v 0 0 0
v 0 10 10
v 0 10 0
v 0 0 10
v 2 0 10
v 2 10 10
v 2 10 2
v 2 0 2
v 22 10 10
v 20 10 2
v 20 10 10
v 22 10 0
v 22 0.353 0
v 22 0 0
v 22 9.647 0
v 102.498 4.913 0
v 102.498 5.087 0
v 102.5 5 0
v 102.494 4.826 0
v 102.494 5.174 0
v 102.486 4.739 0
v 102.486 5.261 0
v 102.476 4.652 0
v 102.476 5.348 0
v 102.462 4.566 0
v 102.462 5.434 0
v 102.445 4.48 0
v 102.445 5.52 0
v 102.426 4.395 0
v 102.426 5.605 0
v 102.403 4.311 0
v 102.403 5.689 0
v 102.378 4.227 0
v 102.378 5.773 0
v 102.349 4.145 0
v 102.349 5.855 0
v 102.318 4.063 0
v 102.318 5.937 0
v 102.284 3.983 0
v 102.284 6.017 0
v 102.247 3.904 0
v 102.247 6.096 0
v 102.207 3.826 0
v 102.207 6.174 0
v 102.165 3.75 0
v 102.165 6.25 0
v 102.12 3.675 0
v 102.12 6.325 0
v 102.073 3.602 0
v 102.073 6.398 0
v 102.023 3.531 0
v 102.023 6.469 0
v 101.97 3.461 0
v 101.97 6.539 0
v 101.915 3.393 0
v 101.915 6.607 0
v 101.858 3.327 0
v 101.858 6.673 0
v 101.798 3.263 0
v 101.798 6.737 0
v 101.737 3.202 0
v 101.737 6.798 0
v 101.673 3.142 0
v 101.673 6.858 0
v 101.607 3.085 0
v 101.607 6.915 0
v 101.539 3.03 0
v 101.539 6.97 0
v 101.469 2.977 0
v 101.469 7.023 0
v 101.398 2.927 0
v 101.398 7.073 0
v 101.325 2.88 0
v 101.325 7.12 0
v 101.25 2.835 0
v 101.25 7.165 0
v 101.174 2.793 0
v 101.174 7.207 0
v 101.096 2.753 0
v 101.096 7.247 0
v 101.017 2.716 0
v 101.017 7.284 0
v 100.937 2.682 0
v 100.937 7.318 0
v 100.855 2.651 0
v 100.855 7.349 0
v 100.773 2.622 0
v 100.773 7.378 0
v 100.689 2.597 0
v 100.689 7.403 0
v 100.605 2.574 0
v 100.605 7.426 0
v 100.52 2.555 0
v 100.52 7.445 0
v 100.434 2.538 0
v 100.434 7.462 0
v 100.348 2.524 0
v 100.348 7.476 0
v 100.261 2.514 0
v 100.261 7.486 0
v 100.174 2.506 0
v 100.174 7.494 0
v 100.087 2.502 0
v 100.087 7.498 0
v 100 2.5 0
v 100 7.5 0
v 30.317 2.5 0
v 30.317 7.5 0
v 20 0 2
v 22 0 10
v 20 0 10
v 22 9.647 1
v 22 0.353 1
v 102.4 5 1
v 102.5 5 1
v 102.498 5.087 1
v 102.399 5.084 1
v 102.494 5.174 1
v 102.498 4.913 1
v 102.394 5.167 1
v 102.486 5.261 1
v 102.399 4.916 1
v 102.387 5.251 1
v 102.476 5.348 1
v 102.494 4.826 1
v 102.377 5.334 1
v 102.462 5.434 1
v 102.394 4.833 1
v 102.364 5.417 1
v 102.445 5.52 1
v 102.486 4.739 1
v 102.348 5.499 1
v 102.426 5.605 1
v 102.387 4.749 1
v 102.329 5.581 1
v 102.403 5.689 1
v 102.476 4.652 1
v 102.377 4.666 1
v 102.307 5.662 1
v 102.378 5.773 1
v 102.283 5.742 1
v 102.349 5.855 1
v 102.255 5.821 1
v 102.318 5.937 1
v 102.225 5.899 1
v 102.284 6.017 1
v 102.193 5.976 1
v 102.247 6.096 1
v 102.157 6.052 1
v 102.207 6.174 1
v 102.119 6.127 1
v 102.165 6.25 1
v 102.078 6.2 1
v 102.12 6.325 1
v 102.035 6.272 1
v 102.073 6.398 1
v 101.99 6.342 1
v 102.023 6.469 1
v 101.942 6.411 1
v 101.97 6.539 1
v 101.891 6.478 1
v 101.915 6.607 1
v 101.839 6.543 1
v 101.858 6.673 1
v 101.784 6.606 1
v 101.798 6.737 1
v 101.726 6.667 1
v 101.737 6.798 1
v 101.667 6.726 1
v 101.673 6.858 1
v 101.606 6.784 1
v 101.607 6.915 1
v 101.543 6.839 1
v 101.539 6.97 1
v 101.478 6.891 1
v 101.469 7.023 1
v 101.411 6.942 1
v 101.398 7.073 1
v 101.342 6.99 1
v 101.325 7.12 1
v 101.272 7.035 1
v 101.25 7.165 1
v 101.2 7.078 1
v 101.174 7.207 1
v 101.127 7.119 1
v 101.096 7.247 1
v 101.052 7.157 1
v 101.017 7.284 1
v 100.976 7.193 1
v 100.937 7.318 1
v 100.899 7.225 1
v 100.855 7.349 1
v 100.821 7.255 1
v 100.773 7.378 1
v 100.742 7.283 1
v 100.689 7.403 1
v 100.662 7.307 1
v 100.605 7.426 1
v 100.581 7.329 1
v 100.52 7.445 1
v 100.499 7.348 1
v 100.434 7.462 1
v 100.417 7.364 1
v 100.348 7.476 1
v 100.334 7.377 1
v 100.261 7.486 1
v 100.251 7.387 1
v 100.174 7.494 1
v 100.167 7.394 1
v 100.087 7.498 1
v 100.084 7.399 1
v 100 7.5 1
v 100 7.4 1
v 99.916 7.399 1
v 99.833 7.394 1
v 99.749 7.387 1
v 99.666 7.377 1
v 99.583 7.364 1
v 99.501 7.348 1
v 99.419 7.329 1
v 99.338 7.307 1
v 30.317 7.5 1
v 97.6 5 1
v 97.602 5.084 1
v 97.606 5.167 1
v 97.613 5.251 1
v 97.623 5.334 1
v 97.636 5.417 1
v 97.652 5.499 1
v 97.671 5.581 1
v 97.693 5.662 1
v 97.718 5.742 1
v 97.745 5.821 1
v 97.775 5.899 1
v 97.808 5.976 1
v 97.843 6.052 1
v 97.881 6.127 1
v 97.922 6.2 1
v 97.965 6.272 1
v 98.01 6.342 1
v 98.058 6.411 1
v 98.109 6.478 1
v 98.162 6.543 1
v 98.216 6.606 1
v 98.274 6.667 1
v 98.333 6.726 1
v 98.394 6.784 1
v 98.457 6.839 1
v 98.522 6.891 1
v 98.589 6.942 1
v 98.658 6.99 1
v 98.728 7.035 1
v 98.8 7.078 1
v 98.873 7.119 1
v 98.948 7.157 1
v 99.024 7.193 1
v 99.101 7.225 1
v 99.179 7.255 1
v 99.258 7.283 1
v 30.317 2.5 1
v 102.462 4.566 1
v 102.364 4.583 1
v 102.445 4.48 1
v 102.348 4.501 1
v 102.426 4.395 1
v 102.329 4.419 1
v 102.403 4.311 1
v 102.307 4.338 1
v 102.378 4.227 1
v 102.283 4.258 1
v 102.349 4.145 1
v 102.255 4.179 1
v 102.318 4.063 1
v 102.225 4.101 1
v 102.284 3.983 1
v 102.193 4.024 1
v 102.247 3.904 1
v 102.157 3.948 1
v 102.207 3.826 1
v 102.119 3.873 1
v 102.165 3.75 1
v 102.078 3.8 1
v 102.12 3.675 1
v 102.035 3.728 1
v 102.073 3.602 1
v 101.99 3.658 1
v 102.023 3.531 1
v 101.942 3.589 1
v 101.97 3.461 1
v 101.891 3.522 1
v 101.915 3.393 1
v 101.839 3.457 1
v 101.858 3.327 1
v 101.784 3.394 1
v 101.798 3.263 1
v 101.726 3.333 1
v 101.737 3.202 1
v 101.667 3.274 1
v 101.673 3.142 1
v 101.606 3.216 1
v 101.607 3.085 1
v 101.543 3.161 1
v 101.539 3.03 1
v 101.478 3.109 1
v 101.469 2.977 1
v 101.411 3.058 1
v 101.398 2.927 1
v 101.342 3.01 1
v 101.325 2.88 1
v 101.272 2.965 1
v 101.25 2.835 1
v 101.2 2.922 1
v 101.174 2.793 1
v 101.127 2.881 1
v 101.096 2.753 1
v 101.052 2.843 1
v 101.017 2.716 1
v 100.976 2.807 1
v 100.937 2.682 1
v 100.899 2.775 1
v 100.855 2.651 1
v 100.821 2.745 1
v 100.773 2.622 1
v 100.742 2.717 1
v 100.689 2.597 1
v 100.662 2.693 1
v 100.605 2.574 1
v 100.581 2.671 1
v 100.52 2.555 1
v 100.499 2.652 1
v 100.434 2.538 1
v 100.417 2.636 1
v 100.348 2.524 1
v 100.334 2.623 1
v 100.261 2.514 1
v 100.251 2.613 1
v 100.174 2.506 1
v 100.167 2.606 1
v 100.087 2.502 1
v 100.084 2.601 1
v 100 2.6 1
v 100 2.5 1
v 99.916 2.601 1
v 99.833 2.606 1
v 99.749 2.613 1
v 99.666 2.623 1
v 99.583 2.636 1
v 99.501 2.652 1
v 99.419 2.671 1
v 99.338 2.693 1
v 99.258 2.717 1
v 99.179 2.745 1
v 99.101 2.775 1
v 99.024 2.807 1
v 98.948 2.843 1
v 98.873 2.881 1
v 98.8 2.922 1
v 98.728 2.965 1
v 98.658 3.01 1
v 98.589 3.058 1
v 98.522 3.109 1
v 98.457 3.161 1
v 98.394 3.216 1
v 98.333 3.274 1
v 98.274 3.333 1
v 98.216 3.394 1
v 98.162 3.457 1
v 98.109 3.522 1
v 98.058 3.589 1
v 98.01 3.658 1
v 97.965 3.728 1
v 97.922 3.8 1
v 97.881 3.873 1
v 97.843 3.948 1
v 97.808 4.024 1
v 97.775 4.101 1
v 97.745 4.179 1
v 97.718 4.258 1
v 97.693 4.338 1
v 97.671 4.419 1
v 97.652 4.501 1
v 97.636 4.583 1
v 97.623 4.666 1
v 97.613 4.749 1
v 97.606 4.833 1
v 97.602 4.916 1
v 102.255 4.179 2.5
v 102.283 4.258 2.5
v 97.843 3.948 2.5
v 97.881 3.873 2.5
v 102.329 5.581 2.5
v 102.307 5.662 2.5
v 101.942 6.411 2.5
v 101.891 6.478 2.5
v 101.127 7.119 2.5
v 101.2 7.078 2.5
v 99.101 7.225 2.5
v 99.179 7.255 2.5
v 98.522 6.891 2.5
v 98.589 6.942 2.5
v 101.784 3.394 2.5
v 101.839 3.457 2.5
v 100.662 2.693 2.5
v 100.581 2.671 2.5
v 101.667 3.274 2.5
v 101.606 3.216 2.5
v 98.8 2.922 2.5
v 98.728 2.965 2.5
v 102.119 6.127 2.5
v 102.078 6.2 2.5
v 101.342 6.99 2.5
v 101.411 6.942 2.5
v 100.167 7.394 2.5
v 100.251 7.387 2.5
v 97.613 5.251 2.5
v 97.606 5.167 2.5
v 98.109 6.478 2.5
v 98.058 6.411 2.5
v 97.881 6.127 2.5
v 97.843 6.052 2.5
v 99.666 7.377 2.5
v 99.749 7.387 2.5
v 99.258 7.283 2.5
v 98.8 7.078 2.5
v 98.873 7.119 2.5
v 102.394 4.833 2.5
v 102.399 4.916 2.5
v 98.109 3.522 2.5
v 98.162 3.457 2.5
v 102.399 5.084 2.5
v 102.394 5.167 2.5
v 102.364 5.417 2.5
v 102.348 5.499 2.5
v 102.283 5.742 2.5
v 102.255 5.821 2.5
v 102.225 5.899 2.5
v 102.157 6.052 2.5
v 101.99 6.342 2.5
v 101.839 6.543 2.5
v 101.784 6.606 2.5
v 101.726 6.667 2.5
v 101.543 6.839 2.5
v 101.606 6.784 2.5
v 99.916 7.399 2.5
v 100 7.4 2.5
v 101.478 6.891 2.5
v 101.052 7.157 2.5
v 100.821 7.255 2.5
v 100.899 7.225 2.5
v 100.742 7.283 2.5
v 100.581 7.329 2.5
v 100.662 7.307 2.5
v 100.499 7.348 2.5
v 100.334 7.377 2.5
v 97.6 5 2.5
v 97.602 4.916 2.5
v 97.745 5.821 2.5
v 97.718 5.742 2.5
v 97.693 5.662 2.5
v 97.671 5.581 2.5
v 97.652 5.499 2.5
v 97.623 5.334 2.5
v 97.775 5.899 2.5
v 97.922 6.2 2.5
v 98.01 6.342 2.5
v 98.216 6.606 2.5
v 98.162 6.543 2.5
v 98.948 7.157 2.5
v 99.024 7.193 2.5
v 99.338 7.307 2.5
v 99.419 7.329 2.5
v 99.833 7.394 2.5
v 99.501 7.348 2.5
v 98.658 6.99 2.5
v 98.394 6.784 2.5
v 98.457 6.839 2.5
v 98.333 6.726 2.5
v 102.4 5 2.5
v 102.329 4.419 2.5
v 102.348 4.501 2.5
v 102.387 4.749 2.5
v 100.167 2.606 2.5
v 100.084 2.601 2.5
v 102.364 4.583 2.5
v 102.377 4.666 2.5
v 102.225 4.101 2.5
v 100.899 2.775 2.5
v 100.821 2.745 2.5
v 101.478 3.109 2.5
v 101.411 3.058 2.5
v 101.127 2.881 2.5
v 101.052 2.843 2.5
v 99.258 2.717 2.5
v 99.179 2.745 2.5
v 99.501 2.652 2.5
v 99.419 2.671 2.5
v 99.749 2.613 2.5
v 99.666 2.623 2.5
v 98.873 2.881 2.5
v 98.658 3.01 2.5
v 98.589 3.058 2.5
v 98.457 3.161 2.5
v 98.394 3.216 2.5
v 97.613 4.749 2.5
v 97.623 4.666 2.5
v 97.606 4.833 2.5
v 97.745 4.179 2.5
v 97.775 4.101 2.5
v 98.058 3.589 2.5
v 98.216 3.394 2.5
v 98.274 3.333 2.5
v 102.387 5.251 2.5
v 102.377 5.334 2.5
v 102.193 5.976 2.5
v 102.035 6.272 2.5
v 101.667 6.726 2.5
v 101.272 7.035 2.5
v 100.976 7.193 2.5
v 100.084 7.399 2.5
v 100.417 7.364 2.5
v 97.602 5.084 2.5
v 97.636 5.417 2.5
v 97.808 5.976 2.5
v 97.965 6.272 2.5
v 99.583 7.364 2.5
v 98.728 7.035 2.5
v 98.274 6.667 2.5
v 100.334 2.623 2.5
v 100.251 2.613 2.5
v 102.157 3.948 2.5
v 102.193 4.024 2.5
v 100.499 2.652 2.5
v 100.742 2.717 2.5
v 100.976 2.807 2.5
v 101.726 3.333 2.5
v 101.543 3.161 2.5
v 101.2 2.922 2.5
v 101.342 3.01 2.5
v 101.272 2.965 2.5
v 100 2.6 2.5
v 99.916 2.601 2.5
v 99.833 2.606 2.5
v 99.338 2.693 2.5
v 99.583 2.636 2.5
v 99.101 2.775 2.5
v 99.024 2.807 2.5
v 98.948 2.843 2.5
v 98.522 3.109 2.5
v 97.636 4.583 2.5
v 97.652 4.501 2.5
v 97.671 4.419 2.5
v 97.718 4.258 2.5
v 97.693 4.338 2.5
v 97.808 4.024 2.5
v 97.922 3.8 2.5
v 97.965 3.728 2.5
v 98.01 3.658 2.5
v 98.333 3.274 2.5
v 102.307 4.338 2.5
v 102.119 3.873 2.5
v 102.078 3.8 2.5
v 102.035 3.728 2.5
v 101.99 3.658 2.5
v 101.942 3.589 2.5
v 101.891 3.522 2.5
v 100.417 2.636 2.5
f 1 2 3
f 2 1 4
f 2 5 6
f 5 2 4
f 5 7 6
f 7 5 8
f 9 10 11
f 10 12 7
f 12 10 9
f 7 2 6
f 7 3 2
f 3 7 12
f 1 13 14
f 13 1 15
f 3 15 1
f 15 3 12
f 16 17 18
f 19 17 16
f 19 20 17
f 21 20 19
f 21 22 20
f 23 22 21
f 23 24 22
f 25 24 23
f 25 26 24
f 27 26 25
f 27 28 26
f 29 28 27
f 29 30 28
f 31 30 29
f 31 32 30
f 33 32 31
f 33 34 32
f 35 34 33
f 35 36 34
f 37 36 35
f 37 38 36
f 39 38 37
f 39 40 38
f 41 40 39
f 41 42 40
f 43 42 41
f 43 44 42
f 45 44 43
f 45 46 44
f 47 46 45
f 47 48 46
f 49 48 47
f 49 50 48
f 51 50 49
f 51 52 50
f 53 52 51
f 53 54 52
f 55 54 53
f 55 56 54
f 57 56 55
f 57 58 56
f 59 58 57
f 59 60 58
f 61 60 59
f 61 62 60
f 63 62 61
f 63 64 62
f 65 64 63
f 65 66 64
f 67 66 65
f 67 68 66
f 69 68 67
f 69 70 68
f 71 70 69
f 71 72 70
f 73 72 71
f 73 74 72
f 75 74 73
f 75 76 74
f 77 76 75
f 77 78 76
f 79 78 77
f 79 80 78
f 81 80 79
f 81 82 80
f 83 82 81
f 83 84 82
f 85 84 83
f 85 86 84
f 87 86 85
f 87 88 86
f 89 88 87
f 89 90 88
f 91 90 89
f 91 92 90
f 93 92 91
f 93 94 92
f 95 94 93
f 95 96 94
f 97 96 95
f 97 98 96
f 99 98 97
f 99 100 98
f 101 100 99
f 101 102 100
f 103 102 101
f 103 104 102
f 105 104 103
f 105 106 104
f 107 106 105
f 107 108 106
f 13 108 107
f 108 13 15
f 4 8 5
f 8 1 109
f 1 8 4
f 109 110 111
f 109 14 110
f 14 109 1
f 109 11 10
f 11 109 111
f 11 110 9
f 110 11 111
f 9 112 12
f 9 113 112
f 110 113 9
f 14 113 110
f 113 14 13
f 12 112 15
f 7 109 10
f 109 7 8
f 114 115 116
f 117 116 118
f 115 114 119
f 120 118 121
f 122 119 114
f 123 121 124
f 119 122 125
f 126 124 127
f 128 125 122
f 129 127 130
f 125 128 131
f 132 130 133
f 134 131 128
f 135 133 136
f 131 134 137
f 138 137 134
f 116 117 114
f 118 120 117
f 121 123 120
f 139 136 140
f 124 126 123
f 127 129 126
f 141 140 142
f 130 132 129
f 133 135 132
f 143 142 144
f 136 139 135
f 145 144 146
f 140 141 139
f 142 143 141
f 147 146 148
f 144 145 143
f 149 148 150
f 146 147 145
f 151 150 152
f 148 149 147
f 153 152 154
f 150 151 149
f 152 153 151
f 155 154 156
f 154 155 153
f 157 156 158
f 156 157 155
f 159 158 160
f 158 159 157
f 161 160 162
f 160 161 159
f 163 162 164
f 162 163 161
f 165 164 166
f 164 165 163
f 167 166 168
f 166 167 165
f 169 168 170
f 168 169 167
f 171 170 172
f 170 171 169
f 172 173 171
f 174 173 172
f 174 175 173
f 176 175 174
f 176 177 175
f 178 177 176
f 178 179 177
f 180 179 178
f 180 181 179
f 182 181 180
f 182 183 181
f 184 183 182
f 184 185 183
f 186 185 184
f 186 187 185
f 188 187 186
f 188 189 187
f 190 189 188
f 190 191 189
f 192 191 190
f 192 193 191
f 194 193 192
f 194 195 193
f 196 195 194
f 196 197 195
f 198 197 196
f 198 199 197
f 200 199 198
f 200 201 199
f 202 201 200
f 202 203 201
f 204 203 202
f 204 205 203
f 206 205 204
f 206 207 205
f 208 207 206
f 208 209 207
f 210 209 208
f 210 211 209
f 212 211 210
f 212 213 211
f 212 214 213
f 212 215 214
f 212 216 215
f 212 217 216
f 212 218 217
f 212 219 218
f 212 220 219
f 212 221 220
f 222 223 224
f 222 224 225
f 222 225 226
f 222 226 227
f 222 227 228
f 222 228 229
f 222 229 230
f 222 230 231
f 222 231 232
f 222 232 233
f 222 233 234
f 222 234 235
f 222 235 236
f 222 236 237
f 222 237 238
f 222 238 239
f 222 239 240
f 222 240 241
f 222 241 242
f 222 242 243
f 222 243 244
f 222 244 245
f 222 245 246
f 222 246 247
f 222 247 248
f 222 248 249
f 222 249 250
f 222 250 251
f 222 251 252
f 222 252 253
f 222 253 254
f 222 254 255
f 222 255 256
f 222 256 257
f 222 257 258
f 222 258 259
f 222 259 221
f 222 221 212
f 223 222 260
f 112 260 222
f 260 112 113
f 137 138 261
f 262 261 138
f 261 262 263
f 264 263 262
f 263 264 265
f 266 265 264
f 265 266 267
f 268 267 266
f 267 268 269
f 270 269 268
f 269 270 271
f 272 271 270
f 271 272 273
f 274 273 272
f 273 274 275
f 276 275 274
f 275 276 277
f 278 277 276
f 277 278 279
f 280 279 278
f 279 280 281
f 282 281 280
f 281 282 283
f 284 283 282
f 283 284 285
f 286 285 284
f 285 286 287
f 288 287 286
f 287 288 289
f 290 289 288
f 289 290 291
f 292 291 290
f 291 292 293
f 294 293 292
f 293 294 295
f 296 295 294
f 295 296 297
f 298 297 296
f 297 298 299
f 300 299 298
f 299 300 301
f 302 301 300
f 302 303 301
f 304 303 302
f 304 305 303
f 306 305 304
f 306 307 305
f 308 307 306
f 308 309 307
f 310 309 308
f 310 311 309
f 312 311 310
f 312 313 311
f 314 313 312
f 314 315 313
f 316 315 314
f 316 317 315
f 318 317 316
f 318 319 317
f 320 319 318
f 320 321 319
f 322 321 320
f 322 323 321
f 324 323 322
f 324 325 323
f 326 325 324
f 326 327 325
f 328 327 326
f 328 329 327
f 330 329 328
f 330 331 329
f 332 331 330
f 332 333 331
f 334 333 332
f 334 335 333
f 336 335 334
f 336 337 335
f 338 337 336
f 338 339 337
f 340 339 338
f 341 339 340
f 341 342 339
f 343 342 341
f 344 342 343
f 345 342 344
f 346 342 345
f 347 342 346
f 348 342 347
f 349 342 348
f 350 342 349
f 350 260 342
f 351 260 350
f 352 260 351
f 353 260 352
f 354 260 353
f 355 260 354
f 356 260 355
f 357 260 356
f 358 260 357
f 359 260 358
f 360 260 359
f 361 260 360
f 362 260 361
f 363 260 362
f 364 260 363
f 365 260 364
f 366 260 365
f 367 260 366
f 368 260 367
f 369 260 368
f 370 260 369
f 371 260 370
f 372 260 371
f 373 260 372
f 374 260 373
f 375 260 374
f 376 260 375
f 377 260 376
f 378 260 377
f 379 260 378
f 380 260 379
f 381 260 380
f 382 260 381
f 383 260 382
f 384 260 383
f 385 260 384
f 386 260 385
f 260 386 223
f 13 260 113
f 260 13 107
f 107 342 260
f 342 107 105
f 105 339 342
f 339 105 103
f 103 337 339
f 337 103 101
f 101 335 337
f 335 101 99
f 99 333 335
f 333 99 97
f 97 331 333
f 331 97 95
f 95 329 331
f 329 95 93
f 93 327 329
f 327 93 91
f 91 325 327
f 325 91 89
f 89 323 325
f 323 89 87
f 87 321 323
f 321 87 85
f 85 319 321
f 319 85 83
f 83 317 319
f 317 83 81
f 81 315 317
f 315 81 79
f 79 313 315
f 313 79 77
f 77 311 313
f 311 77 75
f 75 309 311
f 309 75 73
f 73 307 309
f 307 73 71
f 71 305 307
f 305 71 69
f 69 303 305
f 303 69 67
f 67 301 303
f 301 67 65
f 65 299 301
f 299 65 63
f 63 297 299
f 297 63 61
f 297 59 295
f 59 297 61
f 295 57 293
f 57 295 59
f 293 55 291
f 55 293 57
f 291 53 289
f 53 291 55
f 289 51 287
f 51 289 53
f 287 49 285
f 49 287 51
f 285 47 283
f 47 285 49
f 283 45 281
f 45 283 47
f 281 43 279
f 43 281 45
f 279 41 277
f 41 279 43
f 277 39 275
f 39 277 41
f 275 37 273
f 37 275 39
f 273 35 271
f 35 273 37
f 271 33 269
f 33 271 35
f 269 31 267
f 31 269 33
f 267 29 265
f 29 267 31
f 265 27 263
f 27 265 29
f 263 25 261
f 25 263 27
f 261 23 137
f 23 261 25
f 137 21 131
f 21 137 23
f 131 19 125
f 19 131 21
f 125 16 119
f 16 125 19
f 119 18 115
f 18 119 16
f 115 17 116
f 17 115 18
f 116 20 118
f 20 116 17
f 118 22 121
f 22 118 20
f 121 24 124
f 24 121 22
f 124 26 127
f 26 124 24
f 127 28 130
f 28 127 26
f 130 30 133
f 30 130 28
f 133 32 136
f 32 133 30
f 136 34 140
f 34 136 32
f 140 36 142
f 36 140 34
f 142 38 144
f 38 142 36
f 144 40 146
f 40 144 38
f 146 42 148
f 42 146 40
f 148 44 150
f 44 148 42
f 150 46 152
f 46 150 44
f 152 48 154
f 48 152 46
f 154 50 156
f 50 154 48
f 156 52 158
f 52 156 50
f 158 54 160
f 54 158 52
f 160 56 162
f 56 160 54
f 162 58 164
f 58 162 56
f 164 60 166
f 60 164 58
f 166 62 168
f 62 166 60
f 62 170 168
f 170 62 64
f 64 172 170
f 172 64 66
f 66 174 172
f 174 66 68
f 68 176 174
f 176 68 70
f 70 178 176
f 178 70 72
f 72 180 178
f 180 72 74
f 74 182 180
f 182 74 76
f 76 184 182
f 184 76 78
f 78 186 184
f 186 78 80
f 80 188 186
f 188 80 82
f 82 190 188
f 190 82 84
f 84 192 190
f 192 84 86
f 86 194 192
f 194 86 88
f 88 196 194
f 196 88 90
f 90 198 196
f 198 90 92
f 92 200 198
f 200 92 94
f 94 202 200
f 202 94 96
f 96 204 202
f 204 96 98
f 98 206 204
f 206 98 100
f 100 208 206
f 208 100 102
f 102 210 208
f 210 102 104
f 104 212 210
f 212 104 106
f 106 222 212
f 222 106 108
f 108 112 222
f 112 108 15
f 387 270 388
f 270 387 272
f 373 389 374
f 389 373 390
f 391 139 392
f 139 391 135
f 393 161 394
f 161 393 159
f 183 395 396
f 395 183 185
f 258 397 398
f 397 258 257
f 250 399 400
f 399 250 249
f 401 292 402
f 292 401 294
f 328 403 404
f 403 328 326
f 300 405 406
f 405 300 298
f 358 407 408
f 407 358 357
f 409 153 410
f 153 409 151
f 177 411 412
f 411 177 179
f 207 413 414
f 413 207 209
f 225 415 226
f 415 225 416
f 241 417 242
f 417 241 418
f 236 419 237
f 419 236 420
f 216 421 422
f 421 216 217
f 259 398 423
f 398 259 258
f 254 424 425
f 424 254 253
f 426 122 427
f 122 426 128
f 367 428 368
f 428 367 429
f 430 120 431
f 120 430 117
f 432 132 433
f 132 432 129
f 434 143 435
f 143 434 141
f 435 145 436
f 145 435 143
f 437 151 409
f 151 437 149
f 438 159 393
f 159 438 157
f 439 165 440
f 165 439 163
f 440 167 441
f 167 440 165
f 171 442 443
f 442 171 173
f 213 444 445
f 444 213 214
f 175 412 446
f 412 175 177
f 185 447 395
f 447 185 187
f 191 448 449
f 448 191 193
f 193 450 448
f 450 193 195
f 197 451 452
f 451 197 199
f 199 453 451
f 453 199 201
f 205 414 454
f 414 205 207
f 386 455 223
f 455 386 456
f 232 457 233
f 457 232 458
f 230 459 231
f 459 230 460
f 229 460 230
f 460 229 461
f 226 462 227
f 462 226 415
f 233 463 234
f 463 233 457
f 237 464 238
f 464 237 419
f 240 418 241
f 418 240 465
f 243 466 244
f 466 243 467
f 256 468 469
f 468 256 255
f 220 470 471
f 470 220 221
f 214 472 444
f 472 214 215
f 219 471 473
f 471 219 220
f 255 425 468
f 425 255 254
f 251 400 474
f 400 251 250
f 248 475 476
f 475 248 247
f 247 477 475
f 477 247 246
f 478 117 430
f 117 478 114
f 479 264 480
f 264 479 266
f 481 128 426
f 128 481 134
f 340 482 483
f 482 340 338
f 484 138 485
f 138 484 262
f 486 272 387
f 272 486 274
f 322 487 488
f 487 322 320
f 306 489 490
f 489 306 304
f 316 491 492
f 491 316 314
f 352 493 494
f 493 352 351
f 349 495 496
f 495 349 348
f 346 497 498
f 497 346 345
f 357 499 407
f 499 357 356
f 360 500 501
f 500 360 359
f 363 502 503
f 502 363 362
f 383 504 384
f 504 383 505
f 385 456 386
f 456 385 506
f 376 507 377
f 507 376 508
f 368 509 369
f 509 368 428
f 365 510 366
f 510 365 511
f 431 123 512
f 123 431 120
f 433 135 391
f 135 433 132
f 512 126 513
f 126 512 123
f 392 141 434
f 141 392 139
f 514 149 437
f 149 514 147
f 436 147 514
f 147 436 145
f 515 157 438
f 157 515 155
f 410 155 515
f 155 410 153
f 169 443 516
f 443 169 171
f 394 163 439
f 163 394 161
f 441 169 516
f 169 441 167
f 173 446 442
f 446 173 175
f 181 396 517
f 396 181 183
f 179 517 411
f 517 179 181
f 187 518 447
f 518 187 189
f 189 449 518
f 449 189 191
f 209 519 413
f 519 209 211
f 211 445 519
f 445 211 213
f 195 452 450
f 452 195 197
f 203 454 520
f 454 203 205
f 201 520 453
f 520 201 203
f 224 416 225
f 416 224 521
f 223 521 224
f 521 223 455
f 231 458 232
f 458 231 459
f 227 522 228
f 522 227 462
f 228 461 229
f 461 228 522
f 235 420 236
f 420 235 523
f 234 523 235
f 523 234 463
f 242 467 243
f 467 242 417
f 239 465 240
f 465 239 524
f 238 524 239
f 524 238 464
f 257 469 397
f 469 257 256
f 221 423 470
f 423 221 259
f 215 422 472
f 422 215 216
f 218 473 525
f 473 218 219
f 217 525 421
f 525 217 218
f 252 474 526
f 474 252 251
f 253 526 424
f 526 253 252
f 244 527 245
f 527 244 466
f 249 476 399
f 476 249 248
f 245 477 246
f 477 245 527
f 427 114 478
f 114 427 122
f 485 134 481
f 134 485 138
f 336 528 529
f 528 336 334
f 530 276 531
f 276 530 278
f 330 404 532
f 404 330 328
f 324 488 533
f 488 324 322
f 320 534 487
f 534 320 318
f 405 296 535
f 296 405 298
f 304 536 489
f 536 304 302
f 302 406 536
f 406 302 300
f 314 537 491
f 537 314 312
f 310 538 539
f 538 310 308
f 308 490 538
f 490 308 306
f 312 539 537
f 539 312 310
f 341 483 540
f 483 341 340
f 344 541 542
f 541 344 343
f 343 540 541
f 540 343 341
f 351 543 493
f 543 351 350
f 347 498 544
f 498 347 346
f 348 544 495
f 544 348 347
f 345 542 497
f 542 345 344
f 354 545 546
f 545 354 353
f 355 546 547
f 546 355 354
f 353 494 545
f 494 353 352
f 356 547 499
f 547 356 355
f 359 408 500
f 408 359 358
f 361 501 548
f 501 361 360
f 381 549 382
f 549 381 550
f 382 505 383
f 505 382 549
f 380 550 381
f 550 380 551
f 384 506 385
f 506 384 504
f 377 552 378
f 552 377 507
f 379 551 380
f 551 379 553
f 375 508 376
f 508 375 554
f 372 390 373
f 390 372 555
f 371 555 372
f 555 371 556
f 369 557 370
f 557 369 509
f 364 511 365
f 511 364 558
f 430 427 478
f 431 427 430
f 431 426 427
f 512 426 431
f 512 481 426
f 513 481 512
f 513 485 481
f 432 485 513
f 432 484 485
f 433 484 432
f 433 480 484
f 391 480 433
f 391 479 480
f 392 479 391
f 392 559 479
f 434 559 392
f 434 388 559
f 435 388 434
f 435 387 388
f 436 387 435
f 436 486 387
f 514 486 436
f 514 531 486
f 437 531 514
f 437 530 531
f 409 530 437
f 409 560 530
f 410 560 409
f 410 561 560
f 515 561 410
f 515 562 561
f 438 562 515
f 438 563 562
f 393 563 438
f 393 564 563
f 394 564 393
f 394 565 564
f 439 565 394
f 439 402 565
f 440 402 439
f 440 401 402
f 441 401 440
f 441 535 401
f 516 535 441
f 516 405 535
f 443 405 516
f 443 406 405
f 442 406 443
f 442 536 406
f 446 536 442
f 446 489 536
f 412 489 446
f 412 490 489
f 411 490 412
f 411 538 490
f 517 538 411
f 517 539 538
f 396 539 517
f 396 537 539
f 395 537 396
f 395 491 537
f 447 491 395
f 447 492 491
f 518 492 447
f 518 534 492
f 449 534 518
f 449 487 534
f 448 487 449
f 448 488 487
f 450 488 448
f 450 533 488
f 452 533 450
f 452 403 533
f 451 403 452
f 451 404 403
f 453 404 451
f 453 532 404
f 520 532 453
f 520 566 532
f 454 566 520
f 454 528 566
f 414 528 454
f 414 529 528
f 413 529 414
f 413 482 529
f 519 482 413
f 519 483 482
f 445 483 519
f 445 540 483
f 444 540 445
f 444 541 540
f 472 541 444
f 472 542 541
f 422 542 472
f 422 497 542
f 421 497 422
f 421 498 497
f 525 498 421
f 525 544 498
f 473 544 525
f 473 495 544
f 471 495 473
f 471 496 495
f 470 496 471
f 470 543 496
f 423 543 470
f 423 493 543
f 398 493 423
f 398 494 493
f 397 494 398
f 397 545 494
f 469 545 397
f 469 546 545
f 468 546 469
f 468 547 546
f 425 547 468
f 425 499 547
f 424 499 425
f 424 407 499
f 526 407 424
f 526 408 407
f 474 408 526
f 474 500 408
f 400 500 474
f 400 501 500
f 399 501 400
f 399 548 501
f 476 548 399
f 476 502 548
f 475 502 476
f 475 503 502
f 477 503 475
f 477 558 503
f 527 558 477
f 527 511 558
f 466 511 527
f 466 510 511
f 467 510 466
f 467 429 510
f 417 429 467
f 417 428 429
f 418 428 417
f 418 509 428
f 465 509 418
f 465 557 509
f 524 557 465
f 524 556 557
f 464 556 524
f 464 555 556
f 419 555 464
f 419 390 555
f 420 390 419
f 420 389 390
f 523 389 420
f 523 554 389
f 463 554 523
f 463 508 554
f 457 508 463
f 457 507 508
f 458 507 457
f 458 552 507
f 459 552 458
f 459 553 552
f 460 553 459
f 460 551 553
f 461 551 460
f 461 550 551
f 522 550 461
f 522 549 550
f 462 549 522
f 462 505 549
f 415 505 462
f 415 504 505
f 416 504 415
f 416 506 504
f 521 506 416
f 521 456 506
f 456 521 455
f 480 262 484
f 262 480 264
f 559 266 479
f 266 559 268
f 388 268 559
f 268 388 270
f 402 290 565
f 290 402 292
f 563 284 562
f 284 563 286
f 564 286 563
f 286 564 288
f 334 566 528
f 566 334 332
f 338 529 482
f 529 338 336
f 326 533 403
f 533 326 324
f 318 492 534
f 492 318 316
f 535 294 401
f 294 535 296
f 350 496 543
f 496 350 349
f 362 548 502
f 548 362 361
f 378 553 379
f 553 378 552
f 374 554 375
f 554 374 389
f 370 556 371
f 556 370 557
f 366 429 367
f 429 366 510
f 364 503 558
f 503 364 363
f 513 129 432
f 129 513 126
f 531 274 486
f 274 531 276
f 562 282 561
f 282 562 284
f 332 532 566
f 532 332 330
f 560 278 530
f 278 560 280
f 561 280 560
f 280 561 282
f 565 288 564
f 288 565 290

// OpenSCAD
$fn=180;
length=100;
legHeight=1;

servoLength=20;

//servo holder
cube([2,10,10]);
translate([20,0,0]) cube([2,10,10]);
//servo base
cube([servoLength,10,2]);

linear_extrude(height=legHeight) {
hull(){
    translate([20,5,0]) circle(d=10);
    translate([30,5,0]) circle(d=5);
}

hull() {
    translate([20,5,0]) circle(d=5);
    translate([length,5,0]) circle(d=5);
}
}

translate([length,5,legHeight]) cylinder(d=4.8,h=1.5);
